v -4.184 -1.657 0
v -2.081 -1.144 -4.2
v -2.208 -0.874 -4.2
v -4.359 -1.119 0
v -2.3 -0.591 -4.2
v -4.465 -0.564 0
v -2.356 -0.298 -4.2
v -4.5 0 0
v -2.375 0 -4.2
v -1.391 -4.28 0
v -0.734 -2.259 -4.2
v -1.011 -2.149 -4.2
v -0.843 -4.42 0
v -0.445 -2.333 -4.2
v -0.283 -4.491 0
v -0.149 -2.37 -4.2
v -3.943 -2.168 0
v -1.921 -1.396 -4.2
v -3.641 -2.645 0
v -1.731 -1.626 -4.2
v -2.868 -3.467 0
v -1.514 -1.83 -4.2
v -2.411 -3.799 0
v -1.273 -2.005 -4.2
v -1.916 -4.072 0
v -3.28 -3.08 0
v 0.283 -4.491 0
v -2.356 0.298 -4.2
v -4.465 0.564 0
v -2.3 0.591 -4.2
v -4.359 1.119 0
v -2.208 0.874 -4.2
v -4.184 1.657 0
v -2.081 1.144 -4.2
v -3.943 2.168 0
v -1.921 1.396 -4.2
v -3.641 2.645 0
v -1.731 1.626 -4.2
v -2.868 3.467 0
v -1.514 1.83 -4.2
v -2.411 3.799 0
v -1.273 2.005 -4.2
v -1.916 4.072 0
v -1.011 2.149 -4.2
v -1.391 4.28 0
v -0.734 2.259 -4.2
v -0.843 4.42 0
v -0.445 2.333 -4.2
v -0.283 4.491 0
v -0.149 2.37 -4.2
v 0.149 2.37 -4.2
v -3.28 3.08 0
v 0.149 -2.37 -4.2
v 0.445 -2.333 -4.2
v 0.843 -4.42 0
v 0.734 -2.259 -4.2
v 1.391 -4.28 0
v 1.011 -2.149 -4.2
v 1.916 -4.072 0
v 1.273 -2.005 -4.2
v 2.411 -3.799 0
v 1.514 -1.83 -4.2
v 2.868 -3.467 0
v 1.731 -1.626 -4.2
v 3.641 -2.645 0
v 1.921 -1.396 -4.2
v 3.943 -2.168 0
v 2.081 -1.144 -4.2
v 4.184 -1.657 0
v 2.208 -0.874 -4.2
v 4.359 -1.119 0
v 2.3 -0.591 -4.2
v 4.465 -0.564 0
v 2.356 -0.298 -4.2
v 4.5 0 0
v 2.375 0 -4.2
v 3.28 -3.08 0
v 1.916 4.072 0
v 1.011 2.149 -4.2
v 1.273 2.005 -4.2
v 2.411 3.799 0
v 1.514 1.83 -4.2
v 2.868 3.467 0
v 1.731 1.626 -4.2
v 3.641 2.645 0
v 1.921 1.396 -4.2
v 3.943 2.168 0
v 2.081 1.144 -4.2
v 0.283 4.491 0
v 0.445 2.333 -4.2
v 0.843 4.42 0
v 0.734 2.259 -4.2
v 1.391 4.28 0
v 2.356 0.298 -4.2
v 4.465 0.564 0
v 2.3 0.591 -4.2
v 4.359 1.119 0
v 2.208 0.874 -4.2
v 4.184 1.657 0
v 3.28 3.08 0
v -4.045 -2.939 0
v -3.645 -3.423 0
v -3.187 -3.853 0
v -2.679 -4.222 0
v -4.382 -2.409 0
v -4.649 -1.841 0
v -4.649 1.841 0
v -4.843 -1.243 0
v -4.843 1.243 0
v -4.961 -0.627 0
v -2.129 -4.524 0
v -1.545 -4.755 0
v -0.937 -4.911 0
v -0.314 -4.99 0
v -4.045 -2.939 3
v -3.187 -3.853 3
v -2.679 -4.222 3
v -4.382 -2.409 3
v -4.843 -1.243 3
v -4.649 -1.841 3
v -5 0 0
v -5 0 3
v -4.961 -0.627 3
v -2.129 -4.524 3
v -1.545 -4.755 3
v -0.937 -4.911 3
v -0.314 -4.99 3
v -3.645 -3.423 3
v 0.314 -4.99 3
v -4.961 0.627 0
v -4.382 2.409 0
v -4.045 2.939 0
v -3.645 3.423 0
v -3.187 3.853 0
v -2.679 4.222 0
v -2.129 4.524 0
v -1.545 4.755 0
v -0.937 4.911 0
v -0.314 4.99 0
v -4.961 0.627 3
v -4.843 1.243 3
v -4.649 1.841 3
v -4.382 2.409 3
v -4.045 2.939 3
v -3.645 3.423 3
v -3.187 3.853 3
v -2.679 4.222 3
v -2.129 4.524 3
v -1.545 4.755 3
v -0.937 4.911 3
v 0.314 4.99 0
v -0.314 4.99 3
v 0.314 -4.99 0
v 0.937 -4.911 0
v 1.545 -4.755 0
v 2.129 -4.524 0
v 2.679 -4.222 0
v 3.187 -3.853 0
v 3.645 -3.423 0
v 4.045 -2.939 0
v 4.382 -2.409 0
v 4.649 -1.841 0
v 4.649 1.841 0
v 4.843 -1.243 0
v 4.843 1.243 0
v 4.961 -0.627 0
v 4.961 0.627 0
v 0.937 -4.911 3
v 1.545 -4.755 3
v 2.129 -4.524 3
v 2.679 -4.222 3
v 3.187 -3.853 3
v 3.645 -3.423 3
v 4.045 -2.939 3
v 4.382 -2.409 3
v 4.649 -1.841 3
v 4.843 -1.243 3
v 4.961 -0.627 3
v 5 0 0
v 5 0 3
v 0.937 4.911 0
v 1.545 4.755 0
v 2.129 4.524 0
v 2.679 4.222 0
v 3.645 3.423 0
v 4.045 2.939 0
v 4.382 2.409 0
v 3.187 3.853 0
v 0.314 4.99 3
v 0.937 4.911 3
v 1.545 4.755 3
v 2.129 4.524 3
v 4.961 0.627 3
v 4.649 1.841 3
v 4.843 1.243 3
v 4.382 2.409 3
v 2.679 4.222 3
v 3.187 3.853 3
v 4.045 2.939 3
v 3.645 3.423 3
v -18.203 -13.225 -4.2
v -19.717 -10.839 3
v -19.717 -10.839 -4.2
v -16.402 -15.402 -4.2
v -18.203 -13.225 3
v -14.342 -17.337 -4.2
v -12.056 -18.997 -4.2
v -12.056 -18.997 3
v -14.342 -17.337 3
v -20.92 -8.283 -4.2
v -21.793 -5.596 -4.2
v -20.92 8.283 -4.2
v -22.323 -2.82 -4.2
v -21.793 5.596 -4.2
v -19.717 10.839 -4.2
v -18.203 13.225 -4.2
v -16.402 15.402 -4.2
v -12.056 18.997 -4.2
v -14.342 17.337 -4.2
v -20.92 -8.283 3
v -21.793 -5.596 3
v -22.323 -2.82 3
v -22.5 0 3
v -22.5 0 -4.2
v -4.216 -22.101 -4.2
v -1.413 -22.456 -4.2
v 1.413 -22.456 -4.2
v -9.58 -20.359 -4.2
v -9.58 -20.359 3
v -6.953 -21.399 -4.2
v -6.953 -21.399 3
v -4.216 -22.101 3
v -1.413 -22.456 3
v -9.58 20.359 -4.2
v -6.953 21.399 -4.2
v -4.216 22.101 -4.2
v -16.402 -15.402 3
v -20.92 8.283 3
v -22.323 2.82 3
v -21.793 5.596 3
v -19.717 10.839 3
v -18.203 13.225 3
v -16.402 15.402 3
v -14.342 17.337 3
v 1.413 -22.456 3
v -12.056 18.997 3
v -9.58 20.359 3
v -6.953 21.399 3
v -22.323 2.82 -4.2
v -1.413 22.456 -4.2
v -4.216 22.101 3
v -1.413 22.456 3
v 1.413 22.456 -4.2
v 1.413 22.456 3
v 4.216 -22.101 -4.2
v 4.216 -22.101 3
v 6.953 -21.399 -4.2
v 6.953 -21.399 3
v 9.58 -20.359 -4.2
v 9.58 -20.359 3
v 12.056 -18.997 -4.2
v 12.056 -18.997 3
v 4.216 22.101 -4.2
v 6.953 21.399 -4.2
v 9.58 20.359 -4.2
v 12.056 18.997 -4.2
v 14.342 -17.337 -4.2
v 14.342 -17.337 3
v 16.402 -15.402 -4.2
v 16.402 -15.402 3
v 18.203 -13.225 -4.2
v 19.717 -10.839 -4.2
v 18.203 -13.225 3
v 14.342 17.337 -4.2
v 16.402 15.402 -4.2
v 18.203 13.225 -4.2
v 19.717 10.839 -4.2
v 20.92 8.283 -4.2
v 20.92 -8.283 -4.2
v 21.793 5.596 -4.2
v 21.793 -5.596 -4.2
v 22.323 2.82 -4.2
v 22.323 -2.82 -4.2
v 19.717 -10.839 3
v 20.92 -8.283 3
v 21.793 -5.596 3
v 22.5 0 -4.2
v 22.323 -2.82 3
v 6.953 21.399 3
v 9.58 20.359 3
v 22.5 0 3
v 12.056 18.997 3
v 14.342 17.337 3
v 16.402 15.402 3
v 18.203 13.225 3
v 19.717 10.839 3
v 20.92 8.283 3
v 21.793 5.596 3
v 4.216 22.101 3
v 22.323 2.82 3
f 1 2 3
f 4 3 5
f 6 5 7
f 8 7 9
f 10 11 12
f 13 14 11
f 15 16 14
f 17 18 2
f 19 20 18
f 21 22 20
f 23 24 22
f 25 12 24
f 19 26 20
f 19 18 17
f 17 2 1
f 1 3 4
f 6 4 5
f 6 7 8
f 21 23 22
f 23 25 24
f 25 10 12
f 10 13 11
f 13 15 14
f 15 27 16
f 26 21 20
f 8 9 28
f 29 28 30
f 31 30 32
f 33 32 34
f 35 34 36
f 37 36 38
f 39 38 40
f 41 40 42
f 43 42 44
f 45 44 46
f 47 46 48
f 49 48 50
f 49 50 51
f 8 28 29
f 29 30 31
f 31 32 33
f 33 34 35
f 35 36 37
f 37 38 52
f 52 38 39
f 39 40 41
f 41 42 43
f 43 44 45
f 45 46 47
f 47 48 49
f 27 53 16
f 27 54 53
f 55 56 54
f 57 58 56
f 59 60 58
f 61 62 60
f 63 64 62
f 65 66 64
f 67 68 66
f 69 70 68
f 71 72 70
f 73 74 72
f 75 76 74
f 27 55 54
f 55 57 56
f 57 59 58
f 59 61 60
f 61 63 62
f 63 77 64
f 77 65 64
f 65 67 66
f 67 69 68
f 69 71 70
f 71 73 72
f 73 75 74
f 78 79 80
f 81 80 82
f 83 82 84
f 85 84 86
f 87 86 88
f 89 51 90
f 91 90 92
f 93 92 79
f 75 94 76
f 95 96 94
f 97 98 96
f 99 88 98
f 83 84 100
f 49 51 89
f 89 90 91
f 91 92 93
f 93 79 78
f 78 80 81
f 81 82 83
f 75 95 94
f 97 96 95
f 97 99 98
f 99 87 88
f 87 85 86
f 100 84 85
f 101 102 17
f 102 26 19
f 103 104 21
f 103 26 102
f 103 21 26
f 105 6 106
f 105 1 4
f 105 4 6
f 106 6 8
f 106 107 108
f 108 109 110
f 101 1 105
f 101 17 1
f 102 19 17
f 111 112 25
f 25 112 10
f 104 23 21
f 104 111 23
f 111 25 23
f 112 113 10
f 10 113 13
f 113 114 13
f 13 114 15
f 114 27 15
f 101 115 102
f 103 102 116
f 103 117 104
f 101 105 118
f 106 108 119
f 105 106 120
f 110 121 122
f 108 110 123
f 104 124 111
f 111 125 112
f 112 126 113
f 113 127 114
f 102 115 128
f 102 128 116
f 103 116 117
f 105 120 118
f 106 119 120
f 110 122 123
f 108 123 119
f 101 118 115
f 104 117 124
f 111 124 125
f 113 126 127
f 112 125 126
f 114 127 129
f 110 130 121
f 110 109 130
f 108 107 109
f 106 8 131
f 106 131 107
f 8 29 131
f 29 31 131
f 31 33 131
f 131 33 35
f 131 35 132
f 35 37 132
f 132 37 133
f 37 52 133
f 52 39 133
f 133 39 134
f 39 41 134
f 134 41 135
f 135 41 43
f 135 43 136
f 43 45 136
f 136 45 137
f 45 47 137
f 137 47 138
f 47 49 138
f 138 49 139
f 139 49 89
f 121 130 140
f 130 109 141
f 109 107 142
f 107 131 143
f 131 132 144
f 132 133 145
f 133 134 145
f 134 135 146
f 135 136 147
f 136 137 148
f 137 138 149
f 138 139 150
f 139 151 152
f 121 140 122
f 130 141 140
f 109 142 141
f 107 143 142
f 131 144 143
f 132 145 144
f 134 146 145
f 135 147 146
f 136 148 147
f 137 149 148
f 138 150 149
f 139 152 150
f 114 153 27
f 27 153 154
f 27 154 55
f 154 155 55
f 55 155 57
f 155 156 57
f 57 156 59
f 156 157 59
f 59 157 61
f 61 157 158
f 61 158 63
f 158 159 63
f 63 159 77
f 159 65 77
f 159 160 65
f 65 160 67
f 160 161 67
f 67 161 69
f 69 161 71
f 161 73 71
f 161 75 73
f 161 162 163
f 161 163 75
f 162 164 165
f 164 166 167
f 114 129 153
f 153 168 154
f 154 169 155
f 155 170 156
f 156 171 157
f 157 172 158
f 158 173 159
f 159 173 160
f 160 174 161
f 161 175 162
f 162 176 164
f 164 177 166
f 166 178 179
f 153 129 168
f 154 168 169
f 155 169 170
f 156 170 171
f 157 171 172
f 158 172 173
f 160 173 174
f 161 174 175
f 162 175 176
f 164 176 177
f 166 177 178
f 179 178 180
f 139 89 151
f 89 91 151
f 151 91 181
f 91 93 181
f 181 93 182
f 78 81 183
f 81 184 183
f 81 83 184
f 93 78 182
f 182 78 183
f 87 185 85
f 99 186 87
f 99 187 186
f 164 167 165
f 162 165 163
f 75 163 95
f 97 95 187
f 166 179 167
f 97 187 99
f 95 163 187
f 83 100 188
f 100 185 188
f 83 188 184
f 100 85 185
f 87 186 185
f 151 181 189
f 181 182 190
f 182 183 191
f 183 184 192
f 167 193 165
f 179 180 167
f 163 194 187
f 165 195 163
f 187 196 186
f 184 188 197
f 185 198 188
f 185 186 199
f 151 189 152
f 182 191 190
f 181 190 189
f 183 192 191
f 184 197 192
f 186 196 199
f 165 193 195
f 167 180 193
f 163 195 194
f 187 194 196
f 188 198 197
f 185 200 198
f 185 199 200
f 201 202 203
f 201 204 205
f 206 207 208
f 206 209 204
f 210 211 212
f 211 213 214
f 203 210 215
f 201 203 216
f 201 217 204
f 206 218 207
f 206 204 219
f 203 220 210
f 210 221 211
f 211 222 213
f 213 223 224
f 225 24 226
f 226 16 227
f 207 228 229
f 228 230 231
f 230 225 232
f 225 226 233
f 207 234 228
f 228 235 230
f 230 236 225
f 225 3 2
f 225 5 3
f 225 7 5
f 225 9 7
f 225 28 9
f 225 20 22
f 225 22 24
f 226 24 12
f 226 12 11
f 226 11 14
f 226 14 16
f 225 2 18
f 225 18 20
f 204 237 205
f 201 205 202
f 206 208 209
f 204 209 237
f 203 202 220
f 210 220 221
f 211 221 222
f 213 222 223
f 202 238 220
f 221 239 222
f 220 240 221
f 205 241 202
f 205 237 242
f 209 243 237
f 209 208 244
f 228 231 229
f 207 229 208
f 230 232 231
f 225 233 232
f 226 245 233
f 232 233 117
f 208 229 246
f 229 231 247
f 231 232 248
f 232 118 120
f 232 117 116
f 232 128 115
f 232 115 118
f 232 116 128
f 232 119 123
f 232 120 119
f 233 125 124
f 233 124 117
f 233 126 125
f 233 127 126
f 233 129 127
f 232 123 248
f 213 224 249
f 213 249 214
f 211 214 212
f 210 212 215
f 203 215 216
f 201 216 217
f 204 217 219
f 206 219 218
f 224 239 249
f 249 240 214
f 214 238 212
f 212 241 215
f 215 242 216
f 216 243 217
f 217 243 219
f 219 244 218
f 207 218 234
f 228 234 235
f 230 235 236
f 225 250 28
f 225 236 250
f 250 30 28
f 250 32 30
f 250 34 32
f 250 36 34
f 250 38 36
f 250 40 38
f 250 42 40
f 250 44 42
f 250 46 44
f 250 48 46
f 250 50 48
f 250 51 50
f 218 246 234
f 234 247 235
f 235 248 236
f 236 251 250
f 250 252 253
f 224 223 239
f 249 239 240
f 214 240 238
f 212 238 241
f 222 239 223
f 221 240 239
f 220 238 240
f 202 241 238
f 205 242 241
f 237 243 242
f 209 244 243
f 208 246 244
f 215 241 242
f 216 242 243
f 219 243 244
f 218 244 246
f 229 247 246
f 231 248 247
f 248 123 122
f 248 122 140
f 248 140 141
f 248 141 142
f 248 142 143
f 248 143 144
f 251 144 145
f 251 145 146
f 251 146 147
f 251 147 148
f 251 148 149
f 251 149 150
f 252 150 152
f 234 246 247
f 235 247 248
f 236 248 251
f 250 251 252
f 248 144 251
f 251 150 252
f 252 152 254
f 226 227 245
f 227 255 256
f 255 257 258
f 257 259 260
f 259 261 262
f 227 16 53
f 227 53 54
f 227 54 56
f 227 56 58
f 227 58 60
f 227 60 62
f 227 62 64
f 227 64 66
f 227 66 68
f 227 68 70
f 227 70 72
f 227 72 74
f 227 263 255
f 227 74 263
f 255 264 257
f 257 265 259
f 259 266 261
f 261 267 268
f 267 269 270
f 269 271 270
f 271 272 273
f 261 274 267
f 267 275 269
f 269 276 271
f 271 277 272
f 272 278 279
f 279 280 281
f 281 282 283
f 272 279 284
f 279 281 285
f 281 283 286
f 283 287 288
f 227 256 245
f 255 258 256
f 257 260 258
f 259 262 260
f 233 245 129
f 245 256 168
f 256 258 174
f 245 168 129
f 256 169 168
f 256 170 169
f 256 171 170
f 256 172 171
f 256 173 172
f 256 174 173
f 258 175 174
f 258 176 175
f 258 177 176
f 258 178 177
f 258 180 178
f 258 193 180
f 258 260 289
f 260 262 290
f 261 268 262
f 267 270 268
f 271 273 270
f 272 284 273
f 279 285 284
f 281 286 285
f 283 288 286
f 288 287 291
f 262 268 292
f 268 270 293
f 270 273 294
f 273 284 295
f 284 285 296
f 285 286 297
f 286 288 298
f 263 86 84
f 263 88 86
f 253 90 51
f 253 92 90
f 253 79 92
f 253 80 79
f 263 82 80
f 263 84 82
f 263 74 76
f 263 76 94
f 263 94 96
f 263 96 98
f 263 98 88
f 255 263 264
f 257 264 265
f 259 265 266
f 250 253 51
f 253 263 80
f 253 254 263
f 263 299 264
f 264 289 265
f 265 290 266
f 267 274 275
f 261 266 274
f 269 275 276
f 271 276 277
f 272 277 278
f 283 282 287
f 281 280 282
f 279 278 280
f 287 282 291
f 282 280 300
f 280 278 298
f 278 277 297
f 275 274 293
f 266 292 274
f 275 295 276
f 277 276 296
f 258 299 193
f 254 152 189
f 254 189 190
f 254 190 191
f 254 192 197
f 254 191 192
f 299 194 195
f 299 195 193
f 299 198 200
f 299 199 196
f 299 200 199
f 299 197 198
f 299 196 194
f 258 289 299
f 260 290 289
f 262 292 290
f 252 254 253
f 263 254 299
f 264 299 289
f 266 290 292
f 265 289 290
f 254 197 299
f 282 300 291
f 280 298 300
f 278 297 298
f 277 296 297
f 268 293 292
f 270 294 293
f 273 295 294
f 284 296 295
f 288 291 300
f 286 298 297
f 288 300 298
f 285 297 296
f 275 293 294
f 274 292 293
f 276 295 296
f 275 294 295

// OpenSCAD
$fn = 50;

difference() {
	union() {
		translate(v = [0, 0, -4.2]) {
			cylinder(h = 7.2, r = 22.5);
		}
	}
	union() {
		translate(v = [0, 0, 0]) {
			rotate(a = [0, 0, 0]) {
				difference() {
					union() {
						translate(v = [0, 0, -7.2]) {
							cylinder(h = 7.2, r = 2.25);
						}
						translate(v = [0, 0, -4.2]) {
							cylinder(h = 4.2, r1 = 2.375, r2 = 4.5);
						}
						translate(v = [0, 0, -7.2]) {
							cylinder(h = 7.2, r = 2.375);
						}
						translate(v = [0, 0, -7.2]) {
							cylinder(h = 7.2, r = 2.25);
						}
					}
					union();
				}
			}
		}
		#cylinder(h = 3, r = 5.0);
	}
}
